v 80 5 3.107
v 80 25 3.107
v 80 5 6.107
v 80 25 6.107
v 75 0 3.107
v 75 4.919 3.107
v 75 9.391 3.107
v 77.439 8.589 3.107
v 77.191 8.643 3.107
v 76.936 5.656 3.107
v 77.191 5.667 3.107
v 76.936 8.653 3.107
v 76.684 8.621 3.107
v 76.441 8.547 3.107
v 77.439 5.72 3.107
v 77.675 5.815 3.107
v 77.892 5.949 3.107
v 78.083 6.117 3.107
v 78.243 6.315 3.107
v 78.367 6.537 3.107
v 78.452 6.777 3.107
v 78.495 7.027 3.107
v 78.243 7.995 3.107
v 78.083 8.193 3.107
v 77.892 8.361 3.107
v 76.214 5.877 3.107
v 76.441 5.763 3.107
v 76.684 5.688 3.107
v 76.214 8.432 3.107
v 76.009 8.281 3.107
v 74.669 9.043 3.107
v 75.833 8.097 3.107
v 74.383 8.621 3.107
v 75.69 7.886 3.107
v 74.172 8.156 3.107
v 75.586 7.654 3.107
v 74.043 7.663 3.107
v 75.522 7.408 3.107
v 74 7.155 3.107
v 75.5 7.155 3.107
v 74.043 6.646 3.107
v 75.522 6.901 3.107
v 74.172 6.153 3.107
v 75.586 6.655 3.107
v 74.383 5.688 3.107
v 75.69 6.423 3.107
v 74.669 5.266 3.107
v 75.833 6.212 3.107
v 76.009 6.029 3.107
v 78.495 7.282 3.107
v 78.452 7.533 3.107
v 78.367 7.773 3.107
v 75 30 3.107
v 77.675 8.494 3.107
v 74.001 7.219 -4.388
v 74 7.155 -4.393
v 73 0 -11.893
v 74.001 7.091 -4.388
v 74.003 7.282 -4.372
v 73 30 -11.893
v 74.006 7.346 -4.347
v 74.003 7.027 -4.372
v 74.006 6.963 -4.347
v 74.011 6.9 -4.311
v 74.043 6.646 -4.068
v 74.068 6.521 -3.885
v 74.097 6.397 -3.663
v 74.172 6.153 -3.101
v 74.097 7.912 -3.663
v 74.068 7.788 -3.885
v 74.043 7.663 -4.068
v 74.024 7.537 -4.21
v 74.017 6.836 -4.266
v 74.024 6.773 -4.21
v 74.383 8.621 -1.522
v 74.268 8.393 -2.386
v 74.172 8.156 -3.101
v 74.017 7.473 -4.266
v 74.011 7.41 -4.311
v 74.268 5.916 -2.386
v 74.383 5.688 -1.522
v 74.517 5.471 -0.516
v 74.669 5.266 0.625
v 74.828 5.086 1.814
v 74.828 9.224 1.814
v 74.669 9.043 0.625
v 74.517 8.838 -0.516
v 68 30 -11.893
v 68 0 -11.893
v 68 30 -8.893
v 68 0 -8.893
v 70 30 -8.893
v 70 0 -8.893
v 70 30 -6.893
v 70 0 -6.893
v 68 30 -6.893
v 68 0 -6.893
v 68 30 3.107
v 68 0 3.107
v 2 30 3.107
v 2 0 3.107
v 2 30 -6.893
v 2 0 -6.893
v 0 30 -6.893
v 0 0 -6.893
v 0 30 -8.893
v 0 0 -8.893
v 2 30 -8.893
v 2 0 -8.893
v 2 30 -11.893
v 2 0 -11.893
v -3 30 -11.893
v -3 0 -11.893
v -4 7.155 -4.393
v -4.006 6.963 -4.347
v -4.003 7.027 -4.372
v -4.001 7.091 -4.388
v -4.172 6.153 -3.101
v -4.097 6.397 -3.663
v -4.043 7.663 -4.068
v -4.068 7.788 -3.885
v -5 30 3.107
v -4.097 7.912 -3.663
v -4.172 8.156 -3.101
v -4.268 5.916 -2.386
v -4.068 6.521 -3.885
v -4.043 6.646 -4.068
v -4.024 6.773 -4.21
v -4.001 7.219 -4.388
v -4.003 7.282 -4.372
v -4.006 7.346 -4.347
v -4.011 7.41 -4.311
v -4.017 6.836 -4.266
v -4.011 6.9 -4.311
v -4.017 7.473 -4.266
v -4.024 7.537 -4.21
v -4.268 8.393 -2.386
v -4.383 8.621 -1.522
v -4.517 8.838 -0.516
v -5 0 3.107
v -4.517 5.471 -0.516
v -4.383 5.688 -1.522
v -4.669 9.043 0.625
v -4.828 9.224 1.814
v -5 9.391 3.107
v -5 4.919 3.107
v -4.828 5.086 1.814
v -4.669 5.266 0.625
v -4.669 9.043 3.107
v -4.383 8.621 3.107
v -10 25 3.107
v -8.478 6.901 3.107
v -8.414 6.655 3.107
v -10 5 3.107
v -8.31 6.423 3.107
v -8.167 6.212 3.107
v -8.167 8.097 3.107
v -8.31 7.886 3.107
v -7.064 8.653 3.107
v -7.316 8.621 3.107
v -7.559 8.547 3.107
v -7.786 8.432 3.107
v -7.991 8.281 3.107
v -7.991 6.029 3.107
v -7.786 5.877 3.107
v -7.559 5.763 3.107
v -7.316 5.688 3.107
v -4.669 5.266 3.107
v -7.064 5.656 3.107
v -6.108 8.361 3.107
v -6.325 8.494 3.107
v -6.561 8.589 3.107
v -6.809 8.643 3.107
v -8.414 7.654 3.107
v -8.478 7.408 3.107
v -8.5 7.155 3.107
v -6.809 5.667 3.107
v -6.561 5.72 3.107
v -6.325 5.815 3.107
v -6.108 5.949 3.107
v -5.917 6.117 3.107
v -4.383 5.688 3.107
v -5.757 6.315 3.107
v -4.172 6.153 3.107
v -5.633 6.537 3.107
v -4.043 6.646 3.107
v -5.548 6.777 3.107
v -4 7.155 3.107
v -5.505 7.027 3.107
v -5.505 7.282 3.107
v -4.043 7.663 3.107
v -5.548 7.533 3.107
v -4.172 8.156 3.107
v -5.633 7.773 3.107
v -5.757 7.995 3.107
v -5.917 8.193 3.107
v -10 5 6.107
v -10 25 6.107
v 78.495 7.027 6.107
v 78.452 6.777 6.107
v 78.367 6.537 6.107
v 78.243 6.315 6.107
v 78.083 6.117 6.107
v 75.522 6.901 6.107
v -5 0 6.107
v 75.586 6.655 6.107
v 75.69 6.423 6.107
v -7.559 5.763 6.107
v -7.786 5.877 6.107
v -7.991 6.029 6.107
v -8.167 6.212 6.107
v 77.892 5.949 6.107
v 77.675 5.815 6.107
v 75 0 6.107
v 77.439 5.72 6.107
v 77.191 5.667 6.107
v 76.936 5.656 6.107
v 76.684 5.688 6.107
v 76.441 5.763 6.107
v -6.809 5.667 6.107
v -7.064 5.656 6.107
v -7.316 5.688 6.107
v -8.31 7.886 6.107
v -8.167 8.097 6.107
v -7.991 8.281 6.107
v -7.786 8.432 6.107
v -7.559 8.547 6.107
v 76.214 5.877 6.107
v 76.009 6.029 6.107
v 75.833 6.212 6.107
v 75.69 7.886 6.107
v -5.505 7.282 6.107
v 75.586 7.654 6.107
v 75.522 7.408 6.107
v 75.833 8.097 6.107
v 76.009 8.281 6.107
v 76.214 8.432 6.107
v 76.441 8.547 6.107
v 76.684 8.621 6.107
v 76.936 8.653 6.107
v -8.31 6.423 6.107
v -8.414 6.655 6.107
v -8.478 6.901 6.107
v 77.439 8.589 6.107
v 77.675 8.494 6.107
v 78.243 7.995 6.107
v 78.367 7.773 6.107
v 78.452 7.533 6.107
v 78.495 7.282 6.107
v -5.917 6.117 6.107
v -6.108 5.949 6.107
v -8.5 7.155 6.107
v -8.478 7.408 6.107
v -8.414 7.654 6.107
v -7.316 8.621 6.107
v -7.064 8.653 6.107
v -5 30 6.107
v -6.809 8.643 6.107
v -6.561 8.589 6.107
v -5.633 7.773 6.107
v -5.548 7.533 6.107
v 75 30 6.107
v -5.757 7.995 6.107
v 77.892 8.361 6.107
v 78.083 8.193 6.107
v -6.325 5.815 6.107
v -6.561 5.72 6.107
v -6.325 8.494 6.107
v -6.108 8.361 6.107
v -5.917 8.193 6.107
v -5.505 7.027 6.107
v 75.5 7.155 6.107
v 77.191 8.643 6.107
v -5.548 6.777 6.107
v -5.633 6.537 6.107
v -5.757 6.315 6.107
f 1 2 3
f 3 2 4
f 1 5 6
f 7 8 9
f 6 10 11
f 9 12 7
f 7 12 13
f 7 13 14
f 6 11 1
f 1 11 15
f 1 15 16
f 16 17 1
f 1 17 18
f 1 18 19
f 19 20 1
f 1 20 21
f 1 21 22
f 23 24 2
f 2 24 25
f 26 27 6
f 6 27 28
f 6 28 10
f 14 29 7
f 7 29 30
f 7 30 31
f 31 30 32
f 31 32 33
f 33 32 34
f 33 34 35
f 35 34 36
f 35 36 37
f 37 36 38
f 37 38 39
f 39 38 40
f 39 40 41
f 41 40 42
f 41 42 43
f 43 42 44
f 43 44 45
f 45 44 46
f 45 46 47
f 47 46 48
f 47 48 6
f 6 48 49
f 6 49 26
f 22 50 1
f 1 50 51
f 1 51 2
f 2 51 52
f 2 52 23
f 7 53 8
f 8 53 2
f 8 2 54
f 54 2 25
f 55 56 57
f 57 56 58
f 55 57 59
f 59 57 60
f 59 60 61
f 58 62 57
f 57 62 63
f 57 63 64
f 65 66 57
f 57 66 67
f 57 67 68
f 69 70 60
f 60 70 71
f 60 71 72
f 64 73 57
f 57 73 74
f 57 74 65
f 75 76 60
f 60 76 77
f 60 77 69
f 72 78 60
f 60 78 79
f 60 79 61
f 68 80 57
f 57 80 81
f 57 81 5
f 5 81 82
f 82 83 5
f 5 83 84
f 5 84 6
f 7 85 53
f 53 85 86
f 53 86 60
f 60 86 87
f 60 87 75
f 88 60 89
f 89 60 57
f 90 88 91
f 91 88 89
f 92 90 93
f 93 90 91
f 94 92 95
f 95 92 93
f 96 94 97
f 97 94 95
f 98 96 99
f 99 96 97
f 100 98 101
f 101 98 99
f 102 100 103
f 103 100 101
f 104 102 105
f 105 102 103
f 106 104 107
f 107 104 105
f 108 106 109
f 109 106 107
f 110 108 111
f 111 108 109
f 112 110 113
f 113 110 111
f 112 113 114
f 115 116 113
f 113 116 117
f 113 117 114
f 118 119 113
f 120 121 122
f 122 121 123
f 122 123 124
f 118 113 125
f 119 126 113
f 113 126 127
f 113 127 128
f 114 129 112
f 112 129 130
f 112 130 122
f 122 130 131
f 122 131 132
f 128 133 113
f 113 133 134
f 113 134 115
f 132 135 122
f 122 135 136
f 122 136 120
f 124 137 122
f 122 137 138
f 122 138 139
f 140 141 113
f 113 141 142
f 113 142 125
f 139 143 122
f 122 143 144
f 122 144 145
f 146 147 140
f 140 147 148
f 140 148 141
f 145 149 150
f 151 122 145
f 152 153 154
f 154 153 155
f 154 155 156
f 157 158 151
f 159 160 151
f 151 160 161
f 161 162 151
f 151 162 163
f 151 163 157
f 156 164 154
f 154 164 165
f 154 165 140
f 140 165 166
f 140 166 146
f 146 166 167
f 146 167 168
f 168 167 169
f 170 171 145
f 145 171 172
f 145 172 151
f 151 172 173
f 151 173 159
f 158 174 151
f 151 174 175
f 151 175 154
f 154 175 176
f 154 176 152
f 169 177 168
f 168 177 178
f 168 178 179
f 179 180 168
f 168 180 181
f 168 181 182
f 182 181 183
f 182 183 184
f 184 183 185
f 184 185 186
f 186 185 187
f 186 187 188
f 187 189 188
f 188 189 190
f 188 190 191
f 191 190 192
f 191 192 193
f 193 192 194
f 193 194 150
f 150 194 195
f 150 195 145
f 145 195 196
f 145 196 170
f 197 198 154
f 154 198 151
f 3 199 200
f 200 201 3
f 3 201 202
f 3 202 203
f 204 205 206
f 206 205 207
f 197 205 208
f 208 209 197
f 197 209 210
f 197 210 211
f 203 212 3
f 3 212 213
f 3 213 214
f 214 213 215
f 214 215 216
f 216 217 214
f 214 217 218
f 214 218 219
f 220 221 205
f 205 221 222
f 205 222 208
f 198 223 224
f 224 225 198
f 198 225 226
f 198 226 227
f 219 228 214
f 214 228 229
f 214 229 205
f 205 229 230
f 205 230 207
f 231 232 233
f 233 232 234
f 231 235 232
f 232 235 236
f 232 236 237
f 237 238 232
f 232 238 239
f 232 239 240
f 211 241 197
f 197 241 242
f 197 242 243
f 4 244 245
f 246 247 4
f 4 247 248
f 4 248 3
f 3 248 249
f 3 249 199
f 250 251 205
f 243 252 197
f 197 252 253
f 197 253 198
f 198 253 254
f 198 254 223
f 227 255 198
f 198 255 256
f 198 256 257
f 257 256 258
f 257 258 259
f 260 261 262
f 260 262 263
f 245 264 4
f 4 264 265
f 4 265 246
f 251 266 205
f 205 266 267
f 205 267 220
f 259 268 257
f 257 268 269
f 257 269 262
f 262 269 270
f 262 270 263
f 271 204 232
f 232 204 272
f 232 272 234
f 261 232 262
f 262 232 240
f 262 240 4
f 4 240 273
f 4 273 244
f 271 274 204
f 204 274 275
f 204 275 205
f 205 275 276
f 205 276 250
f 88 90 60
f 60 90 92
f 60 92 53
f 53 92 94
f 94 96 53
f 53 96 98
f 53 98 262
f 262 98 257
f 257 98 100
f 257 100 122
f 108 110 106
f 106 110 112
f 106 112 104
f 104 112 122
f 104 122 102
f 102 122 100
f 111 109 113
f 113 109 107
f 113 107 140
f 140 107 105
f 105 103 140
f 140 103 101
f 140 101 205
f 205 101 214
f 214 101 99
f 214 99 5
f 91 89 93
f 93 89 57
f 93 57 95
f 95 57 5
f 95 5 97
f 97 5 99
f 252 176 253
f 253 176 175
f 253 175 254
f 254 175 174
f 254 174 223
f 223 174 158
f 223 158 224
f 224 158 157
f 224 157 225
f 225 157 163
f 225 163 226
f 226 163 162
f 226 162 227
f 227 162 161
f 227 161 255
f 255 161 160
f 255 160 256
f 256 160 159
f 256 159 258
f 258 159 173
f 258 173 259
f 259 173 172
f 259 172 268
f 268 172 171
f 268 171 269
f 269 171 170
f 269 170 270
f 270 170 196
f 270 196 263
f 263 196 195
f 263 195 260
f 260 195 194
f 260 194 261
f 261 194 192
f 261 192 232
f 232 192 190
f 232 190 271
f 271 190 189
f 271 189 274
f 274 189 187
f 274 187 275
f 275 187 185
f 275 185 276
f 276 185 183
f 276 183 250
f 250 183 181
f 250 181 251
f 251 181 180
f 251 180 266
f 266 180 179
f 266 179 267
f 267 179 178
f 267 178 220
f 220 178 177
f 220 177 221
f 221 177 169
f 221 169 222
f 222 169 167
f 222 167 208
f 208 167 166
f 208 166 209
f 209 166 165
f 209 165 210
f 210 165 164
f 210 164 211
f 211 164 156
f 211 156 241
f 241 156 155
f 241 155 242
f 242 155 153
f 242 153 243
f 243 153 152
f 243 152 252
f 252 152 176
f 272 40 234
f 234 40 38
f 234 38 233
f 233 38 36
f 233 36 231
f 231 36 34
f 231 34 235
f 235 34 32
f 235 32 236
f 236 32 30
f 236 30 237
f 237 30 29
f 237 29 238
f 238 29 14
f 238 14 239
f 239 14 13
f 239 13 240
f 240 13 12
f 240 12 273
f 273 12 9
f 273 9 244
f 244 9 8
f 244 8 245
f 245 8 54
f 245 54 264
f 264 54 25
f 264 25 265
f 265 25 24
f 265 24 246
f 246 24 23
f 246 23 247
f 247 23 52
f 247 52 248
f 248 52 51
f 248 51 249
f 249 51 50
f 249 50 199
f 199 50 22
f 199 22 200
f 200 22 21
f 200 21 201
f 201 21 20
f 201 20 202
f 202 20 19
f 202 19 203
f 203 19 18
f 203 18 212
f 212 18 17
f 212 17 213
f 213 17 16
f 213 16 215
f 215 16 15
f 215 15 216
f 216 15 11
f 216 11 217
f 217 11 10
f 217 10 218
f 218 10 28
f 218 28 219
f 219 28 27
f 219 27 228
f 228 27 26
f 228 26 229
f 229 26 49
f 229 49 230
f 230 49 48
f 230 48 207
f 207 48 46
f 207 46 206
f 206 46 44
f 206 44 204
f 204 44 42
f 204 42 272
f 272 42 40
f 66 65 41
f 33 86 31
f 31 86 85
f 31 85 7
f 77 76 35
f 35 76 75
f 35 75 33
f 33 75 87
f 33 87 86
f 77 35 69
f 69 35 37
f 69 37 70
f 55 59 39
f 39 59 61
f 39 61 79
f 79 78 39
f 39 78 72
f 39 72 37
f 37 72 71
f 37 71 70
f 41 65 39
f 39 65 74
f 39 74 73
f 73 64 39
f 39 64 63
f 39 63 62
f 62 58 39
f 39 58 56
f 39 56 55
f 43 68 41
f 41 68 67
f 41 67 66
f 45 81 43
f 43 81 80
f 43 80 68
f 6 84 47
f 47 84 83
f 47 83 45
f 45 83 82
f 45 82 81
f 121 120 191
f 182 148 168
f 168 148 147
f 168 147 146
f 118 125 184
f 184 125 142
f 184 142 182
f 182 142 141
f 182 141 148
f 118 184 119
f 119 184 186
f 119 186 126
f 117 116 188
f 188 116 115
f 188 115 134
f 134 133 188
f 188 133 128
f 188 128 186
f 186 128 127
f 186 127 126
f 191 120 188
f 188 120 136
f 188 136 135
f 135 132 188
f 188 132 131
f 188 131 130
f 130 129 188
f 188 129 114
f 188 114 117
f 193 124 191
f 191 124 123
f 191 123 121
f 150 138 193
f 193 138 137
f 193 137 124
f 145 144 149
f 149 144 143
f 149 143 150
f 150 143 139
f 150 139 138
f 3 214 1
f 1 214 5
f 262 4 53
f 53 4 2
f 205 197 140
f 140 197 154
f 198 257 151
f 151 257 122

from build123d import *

# Parameters (mm, degrees)
BOSS_EXTRUDE1_DEPTH = 30
SKETCH2_R           = 1.5
CUT_EXTRUDE1_DEPTH  = 20
CUT_EXTRUDE2_START  = 20
SKETCH2_3_R         = 3
SKETCH2_3_R_2       = 1.5
CUT_EXTRUDE2_DEPTH  = 20
CHAMFER1_SIZE       = 5


with BuildPart() as part:
    # Sketch1 → Boss-Extrude1 (new body)
    with BuildSketch(Plane(origin=(0, 0, 0), x_dir=(1, 0, 0), z_dir=(0, 1, 0))):
        Polygon((-3, 11.892818554), (-5, -3.107181446), (-10, -3.107181446), (-10, -6.107181446), (80, -6.107181446), (80, -3.107181446), (75, -3.107181446), (73, 11.892818554), (68, 11.892818554), (68, 8.892818554), (70, 8.892818554), (70, 6.892818554), (68, 6.892818554), (68, -3.107181446), (2, -3.107181446), (2, 6.892818554), (0, 6.892818554), (0, 8.892818554), (2, 8.892818554), (2, 11.892818554), align=None)
    extrude(amount=BOSS_EXTRUDE1_DEPTH)

    # Sketch2 → Cut-Extrude1 (cut)
    with BuildSketch(Plane(origin=(0, 0, 3.107181446), x_dir=(-1, 0, 0), z_dir=(0, 0, -1))):
        with Locations((7, 7.154704287)):
            Circle(SKETCH2_R)
        with Locations((-77, 7.154704287)):
            Circle(SKETCH2_R)
    extrude(amount=-CUT_EXTRUDE1_DEPTH, mode=Mode.SUBTRACT)

    # Sketch2<3> → Cut-Extrude2 (cut)
    # profile 1 of 2: a face of its own
    with BuildSketch(Plane(origin=(0, 0, 3.107181446), x_dir=(-1, 0, 0), z_dir=(0, 0, -1)).offset(CUT_EXTRUDE2_START)):
        with Locations((7, 7.154704287)):
            Circle(SKETCH2_3_R)
        with Locations((7, 7.154704287)):
            Circle(SKETCH2_3_R_2, mode=Mode.SUBTRACT)
    # profile 2 of 2: a face of its own
    with BuildSketch(Plane(origin=(0, 0, 3.107181446), x_dir=(-1, 0, 0), z_dir=(0, 0, -1)).offset(CUT_EXTRUDE2_START)):
        with Locations((-77, 7.154704287)):
            Circle(SKETCH2_3_R)
        with Locations((-77, 7.154704287)):
            Circle(SKETCH2_3_R_2, mode=Mode.SUBTRACT)
    extrude(amount=-CUT_EXTRUDE2_DEPTH, mode=Mode.SUBTRACT)

    # Chamfer1
    chamfer1_edges = [part.edges().sort_by_distance(p)[0] for p in [
        (80, 0, 4.607181446),
        (80, 30, 4.607181446),
        (-10, 0, 4.607181446),
        (-10, 30, 4.607181446),
    ]]
    chamfer(chamfer1_edges, length=CHAMFER1_SIZE)


solid = part.part
